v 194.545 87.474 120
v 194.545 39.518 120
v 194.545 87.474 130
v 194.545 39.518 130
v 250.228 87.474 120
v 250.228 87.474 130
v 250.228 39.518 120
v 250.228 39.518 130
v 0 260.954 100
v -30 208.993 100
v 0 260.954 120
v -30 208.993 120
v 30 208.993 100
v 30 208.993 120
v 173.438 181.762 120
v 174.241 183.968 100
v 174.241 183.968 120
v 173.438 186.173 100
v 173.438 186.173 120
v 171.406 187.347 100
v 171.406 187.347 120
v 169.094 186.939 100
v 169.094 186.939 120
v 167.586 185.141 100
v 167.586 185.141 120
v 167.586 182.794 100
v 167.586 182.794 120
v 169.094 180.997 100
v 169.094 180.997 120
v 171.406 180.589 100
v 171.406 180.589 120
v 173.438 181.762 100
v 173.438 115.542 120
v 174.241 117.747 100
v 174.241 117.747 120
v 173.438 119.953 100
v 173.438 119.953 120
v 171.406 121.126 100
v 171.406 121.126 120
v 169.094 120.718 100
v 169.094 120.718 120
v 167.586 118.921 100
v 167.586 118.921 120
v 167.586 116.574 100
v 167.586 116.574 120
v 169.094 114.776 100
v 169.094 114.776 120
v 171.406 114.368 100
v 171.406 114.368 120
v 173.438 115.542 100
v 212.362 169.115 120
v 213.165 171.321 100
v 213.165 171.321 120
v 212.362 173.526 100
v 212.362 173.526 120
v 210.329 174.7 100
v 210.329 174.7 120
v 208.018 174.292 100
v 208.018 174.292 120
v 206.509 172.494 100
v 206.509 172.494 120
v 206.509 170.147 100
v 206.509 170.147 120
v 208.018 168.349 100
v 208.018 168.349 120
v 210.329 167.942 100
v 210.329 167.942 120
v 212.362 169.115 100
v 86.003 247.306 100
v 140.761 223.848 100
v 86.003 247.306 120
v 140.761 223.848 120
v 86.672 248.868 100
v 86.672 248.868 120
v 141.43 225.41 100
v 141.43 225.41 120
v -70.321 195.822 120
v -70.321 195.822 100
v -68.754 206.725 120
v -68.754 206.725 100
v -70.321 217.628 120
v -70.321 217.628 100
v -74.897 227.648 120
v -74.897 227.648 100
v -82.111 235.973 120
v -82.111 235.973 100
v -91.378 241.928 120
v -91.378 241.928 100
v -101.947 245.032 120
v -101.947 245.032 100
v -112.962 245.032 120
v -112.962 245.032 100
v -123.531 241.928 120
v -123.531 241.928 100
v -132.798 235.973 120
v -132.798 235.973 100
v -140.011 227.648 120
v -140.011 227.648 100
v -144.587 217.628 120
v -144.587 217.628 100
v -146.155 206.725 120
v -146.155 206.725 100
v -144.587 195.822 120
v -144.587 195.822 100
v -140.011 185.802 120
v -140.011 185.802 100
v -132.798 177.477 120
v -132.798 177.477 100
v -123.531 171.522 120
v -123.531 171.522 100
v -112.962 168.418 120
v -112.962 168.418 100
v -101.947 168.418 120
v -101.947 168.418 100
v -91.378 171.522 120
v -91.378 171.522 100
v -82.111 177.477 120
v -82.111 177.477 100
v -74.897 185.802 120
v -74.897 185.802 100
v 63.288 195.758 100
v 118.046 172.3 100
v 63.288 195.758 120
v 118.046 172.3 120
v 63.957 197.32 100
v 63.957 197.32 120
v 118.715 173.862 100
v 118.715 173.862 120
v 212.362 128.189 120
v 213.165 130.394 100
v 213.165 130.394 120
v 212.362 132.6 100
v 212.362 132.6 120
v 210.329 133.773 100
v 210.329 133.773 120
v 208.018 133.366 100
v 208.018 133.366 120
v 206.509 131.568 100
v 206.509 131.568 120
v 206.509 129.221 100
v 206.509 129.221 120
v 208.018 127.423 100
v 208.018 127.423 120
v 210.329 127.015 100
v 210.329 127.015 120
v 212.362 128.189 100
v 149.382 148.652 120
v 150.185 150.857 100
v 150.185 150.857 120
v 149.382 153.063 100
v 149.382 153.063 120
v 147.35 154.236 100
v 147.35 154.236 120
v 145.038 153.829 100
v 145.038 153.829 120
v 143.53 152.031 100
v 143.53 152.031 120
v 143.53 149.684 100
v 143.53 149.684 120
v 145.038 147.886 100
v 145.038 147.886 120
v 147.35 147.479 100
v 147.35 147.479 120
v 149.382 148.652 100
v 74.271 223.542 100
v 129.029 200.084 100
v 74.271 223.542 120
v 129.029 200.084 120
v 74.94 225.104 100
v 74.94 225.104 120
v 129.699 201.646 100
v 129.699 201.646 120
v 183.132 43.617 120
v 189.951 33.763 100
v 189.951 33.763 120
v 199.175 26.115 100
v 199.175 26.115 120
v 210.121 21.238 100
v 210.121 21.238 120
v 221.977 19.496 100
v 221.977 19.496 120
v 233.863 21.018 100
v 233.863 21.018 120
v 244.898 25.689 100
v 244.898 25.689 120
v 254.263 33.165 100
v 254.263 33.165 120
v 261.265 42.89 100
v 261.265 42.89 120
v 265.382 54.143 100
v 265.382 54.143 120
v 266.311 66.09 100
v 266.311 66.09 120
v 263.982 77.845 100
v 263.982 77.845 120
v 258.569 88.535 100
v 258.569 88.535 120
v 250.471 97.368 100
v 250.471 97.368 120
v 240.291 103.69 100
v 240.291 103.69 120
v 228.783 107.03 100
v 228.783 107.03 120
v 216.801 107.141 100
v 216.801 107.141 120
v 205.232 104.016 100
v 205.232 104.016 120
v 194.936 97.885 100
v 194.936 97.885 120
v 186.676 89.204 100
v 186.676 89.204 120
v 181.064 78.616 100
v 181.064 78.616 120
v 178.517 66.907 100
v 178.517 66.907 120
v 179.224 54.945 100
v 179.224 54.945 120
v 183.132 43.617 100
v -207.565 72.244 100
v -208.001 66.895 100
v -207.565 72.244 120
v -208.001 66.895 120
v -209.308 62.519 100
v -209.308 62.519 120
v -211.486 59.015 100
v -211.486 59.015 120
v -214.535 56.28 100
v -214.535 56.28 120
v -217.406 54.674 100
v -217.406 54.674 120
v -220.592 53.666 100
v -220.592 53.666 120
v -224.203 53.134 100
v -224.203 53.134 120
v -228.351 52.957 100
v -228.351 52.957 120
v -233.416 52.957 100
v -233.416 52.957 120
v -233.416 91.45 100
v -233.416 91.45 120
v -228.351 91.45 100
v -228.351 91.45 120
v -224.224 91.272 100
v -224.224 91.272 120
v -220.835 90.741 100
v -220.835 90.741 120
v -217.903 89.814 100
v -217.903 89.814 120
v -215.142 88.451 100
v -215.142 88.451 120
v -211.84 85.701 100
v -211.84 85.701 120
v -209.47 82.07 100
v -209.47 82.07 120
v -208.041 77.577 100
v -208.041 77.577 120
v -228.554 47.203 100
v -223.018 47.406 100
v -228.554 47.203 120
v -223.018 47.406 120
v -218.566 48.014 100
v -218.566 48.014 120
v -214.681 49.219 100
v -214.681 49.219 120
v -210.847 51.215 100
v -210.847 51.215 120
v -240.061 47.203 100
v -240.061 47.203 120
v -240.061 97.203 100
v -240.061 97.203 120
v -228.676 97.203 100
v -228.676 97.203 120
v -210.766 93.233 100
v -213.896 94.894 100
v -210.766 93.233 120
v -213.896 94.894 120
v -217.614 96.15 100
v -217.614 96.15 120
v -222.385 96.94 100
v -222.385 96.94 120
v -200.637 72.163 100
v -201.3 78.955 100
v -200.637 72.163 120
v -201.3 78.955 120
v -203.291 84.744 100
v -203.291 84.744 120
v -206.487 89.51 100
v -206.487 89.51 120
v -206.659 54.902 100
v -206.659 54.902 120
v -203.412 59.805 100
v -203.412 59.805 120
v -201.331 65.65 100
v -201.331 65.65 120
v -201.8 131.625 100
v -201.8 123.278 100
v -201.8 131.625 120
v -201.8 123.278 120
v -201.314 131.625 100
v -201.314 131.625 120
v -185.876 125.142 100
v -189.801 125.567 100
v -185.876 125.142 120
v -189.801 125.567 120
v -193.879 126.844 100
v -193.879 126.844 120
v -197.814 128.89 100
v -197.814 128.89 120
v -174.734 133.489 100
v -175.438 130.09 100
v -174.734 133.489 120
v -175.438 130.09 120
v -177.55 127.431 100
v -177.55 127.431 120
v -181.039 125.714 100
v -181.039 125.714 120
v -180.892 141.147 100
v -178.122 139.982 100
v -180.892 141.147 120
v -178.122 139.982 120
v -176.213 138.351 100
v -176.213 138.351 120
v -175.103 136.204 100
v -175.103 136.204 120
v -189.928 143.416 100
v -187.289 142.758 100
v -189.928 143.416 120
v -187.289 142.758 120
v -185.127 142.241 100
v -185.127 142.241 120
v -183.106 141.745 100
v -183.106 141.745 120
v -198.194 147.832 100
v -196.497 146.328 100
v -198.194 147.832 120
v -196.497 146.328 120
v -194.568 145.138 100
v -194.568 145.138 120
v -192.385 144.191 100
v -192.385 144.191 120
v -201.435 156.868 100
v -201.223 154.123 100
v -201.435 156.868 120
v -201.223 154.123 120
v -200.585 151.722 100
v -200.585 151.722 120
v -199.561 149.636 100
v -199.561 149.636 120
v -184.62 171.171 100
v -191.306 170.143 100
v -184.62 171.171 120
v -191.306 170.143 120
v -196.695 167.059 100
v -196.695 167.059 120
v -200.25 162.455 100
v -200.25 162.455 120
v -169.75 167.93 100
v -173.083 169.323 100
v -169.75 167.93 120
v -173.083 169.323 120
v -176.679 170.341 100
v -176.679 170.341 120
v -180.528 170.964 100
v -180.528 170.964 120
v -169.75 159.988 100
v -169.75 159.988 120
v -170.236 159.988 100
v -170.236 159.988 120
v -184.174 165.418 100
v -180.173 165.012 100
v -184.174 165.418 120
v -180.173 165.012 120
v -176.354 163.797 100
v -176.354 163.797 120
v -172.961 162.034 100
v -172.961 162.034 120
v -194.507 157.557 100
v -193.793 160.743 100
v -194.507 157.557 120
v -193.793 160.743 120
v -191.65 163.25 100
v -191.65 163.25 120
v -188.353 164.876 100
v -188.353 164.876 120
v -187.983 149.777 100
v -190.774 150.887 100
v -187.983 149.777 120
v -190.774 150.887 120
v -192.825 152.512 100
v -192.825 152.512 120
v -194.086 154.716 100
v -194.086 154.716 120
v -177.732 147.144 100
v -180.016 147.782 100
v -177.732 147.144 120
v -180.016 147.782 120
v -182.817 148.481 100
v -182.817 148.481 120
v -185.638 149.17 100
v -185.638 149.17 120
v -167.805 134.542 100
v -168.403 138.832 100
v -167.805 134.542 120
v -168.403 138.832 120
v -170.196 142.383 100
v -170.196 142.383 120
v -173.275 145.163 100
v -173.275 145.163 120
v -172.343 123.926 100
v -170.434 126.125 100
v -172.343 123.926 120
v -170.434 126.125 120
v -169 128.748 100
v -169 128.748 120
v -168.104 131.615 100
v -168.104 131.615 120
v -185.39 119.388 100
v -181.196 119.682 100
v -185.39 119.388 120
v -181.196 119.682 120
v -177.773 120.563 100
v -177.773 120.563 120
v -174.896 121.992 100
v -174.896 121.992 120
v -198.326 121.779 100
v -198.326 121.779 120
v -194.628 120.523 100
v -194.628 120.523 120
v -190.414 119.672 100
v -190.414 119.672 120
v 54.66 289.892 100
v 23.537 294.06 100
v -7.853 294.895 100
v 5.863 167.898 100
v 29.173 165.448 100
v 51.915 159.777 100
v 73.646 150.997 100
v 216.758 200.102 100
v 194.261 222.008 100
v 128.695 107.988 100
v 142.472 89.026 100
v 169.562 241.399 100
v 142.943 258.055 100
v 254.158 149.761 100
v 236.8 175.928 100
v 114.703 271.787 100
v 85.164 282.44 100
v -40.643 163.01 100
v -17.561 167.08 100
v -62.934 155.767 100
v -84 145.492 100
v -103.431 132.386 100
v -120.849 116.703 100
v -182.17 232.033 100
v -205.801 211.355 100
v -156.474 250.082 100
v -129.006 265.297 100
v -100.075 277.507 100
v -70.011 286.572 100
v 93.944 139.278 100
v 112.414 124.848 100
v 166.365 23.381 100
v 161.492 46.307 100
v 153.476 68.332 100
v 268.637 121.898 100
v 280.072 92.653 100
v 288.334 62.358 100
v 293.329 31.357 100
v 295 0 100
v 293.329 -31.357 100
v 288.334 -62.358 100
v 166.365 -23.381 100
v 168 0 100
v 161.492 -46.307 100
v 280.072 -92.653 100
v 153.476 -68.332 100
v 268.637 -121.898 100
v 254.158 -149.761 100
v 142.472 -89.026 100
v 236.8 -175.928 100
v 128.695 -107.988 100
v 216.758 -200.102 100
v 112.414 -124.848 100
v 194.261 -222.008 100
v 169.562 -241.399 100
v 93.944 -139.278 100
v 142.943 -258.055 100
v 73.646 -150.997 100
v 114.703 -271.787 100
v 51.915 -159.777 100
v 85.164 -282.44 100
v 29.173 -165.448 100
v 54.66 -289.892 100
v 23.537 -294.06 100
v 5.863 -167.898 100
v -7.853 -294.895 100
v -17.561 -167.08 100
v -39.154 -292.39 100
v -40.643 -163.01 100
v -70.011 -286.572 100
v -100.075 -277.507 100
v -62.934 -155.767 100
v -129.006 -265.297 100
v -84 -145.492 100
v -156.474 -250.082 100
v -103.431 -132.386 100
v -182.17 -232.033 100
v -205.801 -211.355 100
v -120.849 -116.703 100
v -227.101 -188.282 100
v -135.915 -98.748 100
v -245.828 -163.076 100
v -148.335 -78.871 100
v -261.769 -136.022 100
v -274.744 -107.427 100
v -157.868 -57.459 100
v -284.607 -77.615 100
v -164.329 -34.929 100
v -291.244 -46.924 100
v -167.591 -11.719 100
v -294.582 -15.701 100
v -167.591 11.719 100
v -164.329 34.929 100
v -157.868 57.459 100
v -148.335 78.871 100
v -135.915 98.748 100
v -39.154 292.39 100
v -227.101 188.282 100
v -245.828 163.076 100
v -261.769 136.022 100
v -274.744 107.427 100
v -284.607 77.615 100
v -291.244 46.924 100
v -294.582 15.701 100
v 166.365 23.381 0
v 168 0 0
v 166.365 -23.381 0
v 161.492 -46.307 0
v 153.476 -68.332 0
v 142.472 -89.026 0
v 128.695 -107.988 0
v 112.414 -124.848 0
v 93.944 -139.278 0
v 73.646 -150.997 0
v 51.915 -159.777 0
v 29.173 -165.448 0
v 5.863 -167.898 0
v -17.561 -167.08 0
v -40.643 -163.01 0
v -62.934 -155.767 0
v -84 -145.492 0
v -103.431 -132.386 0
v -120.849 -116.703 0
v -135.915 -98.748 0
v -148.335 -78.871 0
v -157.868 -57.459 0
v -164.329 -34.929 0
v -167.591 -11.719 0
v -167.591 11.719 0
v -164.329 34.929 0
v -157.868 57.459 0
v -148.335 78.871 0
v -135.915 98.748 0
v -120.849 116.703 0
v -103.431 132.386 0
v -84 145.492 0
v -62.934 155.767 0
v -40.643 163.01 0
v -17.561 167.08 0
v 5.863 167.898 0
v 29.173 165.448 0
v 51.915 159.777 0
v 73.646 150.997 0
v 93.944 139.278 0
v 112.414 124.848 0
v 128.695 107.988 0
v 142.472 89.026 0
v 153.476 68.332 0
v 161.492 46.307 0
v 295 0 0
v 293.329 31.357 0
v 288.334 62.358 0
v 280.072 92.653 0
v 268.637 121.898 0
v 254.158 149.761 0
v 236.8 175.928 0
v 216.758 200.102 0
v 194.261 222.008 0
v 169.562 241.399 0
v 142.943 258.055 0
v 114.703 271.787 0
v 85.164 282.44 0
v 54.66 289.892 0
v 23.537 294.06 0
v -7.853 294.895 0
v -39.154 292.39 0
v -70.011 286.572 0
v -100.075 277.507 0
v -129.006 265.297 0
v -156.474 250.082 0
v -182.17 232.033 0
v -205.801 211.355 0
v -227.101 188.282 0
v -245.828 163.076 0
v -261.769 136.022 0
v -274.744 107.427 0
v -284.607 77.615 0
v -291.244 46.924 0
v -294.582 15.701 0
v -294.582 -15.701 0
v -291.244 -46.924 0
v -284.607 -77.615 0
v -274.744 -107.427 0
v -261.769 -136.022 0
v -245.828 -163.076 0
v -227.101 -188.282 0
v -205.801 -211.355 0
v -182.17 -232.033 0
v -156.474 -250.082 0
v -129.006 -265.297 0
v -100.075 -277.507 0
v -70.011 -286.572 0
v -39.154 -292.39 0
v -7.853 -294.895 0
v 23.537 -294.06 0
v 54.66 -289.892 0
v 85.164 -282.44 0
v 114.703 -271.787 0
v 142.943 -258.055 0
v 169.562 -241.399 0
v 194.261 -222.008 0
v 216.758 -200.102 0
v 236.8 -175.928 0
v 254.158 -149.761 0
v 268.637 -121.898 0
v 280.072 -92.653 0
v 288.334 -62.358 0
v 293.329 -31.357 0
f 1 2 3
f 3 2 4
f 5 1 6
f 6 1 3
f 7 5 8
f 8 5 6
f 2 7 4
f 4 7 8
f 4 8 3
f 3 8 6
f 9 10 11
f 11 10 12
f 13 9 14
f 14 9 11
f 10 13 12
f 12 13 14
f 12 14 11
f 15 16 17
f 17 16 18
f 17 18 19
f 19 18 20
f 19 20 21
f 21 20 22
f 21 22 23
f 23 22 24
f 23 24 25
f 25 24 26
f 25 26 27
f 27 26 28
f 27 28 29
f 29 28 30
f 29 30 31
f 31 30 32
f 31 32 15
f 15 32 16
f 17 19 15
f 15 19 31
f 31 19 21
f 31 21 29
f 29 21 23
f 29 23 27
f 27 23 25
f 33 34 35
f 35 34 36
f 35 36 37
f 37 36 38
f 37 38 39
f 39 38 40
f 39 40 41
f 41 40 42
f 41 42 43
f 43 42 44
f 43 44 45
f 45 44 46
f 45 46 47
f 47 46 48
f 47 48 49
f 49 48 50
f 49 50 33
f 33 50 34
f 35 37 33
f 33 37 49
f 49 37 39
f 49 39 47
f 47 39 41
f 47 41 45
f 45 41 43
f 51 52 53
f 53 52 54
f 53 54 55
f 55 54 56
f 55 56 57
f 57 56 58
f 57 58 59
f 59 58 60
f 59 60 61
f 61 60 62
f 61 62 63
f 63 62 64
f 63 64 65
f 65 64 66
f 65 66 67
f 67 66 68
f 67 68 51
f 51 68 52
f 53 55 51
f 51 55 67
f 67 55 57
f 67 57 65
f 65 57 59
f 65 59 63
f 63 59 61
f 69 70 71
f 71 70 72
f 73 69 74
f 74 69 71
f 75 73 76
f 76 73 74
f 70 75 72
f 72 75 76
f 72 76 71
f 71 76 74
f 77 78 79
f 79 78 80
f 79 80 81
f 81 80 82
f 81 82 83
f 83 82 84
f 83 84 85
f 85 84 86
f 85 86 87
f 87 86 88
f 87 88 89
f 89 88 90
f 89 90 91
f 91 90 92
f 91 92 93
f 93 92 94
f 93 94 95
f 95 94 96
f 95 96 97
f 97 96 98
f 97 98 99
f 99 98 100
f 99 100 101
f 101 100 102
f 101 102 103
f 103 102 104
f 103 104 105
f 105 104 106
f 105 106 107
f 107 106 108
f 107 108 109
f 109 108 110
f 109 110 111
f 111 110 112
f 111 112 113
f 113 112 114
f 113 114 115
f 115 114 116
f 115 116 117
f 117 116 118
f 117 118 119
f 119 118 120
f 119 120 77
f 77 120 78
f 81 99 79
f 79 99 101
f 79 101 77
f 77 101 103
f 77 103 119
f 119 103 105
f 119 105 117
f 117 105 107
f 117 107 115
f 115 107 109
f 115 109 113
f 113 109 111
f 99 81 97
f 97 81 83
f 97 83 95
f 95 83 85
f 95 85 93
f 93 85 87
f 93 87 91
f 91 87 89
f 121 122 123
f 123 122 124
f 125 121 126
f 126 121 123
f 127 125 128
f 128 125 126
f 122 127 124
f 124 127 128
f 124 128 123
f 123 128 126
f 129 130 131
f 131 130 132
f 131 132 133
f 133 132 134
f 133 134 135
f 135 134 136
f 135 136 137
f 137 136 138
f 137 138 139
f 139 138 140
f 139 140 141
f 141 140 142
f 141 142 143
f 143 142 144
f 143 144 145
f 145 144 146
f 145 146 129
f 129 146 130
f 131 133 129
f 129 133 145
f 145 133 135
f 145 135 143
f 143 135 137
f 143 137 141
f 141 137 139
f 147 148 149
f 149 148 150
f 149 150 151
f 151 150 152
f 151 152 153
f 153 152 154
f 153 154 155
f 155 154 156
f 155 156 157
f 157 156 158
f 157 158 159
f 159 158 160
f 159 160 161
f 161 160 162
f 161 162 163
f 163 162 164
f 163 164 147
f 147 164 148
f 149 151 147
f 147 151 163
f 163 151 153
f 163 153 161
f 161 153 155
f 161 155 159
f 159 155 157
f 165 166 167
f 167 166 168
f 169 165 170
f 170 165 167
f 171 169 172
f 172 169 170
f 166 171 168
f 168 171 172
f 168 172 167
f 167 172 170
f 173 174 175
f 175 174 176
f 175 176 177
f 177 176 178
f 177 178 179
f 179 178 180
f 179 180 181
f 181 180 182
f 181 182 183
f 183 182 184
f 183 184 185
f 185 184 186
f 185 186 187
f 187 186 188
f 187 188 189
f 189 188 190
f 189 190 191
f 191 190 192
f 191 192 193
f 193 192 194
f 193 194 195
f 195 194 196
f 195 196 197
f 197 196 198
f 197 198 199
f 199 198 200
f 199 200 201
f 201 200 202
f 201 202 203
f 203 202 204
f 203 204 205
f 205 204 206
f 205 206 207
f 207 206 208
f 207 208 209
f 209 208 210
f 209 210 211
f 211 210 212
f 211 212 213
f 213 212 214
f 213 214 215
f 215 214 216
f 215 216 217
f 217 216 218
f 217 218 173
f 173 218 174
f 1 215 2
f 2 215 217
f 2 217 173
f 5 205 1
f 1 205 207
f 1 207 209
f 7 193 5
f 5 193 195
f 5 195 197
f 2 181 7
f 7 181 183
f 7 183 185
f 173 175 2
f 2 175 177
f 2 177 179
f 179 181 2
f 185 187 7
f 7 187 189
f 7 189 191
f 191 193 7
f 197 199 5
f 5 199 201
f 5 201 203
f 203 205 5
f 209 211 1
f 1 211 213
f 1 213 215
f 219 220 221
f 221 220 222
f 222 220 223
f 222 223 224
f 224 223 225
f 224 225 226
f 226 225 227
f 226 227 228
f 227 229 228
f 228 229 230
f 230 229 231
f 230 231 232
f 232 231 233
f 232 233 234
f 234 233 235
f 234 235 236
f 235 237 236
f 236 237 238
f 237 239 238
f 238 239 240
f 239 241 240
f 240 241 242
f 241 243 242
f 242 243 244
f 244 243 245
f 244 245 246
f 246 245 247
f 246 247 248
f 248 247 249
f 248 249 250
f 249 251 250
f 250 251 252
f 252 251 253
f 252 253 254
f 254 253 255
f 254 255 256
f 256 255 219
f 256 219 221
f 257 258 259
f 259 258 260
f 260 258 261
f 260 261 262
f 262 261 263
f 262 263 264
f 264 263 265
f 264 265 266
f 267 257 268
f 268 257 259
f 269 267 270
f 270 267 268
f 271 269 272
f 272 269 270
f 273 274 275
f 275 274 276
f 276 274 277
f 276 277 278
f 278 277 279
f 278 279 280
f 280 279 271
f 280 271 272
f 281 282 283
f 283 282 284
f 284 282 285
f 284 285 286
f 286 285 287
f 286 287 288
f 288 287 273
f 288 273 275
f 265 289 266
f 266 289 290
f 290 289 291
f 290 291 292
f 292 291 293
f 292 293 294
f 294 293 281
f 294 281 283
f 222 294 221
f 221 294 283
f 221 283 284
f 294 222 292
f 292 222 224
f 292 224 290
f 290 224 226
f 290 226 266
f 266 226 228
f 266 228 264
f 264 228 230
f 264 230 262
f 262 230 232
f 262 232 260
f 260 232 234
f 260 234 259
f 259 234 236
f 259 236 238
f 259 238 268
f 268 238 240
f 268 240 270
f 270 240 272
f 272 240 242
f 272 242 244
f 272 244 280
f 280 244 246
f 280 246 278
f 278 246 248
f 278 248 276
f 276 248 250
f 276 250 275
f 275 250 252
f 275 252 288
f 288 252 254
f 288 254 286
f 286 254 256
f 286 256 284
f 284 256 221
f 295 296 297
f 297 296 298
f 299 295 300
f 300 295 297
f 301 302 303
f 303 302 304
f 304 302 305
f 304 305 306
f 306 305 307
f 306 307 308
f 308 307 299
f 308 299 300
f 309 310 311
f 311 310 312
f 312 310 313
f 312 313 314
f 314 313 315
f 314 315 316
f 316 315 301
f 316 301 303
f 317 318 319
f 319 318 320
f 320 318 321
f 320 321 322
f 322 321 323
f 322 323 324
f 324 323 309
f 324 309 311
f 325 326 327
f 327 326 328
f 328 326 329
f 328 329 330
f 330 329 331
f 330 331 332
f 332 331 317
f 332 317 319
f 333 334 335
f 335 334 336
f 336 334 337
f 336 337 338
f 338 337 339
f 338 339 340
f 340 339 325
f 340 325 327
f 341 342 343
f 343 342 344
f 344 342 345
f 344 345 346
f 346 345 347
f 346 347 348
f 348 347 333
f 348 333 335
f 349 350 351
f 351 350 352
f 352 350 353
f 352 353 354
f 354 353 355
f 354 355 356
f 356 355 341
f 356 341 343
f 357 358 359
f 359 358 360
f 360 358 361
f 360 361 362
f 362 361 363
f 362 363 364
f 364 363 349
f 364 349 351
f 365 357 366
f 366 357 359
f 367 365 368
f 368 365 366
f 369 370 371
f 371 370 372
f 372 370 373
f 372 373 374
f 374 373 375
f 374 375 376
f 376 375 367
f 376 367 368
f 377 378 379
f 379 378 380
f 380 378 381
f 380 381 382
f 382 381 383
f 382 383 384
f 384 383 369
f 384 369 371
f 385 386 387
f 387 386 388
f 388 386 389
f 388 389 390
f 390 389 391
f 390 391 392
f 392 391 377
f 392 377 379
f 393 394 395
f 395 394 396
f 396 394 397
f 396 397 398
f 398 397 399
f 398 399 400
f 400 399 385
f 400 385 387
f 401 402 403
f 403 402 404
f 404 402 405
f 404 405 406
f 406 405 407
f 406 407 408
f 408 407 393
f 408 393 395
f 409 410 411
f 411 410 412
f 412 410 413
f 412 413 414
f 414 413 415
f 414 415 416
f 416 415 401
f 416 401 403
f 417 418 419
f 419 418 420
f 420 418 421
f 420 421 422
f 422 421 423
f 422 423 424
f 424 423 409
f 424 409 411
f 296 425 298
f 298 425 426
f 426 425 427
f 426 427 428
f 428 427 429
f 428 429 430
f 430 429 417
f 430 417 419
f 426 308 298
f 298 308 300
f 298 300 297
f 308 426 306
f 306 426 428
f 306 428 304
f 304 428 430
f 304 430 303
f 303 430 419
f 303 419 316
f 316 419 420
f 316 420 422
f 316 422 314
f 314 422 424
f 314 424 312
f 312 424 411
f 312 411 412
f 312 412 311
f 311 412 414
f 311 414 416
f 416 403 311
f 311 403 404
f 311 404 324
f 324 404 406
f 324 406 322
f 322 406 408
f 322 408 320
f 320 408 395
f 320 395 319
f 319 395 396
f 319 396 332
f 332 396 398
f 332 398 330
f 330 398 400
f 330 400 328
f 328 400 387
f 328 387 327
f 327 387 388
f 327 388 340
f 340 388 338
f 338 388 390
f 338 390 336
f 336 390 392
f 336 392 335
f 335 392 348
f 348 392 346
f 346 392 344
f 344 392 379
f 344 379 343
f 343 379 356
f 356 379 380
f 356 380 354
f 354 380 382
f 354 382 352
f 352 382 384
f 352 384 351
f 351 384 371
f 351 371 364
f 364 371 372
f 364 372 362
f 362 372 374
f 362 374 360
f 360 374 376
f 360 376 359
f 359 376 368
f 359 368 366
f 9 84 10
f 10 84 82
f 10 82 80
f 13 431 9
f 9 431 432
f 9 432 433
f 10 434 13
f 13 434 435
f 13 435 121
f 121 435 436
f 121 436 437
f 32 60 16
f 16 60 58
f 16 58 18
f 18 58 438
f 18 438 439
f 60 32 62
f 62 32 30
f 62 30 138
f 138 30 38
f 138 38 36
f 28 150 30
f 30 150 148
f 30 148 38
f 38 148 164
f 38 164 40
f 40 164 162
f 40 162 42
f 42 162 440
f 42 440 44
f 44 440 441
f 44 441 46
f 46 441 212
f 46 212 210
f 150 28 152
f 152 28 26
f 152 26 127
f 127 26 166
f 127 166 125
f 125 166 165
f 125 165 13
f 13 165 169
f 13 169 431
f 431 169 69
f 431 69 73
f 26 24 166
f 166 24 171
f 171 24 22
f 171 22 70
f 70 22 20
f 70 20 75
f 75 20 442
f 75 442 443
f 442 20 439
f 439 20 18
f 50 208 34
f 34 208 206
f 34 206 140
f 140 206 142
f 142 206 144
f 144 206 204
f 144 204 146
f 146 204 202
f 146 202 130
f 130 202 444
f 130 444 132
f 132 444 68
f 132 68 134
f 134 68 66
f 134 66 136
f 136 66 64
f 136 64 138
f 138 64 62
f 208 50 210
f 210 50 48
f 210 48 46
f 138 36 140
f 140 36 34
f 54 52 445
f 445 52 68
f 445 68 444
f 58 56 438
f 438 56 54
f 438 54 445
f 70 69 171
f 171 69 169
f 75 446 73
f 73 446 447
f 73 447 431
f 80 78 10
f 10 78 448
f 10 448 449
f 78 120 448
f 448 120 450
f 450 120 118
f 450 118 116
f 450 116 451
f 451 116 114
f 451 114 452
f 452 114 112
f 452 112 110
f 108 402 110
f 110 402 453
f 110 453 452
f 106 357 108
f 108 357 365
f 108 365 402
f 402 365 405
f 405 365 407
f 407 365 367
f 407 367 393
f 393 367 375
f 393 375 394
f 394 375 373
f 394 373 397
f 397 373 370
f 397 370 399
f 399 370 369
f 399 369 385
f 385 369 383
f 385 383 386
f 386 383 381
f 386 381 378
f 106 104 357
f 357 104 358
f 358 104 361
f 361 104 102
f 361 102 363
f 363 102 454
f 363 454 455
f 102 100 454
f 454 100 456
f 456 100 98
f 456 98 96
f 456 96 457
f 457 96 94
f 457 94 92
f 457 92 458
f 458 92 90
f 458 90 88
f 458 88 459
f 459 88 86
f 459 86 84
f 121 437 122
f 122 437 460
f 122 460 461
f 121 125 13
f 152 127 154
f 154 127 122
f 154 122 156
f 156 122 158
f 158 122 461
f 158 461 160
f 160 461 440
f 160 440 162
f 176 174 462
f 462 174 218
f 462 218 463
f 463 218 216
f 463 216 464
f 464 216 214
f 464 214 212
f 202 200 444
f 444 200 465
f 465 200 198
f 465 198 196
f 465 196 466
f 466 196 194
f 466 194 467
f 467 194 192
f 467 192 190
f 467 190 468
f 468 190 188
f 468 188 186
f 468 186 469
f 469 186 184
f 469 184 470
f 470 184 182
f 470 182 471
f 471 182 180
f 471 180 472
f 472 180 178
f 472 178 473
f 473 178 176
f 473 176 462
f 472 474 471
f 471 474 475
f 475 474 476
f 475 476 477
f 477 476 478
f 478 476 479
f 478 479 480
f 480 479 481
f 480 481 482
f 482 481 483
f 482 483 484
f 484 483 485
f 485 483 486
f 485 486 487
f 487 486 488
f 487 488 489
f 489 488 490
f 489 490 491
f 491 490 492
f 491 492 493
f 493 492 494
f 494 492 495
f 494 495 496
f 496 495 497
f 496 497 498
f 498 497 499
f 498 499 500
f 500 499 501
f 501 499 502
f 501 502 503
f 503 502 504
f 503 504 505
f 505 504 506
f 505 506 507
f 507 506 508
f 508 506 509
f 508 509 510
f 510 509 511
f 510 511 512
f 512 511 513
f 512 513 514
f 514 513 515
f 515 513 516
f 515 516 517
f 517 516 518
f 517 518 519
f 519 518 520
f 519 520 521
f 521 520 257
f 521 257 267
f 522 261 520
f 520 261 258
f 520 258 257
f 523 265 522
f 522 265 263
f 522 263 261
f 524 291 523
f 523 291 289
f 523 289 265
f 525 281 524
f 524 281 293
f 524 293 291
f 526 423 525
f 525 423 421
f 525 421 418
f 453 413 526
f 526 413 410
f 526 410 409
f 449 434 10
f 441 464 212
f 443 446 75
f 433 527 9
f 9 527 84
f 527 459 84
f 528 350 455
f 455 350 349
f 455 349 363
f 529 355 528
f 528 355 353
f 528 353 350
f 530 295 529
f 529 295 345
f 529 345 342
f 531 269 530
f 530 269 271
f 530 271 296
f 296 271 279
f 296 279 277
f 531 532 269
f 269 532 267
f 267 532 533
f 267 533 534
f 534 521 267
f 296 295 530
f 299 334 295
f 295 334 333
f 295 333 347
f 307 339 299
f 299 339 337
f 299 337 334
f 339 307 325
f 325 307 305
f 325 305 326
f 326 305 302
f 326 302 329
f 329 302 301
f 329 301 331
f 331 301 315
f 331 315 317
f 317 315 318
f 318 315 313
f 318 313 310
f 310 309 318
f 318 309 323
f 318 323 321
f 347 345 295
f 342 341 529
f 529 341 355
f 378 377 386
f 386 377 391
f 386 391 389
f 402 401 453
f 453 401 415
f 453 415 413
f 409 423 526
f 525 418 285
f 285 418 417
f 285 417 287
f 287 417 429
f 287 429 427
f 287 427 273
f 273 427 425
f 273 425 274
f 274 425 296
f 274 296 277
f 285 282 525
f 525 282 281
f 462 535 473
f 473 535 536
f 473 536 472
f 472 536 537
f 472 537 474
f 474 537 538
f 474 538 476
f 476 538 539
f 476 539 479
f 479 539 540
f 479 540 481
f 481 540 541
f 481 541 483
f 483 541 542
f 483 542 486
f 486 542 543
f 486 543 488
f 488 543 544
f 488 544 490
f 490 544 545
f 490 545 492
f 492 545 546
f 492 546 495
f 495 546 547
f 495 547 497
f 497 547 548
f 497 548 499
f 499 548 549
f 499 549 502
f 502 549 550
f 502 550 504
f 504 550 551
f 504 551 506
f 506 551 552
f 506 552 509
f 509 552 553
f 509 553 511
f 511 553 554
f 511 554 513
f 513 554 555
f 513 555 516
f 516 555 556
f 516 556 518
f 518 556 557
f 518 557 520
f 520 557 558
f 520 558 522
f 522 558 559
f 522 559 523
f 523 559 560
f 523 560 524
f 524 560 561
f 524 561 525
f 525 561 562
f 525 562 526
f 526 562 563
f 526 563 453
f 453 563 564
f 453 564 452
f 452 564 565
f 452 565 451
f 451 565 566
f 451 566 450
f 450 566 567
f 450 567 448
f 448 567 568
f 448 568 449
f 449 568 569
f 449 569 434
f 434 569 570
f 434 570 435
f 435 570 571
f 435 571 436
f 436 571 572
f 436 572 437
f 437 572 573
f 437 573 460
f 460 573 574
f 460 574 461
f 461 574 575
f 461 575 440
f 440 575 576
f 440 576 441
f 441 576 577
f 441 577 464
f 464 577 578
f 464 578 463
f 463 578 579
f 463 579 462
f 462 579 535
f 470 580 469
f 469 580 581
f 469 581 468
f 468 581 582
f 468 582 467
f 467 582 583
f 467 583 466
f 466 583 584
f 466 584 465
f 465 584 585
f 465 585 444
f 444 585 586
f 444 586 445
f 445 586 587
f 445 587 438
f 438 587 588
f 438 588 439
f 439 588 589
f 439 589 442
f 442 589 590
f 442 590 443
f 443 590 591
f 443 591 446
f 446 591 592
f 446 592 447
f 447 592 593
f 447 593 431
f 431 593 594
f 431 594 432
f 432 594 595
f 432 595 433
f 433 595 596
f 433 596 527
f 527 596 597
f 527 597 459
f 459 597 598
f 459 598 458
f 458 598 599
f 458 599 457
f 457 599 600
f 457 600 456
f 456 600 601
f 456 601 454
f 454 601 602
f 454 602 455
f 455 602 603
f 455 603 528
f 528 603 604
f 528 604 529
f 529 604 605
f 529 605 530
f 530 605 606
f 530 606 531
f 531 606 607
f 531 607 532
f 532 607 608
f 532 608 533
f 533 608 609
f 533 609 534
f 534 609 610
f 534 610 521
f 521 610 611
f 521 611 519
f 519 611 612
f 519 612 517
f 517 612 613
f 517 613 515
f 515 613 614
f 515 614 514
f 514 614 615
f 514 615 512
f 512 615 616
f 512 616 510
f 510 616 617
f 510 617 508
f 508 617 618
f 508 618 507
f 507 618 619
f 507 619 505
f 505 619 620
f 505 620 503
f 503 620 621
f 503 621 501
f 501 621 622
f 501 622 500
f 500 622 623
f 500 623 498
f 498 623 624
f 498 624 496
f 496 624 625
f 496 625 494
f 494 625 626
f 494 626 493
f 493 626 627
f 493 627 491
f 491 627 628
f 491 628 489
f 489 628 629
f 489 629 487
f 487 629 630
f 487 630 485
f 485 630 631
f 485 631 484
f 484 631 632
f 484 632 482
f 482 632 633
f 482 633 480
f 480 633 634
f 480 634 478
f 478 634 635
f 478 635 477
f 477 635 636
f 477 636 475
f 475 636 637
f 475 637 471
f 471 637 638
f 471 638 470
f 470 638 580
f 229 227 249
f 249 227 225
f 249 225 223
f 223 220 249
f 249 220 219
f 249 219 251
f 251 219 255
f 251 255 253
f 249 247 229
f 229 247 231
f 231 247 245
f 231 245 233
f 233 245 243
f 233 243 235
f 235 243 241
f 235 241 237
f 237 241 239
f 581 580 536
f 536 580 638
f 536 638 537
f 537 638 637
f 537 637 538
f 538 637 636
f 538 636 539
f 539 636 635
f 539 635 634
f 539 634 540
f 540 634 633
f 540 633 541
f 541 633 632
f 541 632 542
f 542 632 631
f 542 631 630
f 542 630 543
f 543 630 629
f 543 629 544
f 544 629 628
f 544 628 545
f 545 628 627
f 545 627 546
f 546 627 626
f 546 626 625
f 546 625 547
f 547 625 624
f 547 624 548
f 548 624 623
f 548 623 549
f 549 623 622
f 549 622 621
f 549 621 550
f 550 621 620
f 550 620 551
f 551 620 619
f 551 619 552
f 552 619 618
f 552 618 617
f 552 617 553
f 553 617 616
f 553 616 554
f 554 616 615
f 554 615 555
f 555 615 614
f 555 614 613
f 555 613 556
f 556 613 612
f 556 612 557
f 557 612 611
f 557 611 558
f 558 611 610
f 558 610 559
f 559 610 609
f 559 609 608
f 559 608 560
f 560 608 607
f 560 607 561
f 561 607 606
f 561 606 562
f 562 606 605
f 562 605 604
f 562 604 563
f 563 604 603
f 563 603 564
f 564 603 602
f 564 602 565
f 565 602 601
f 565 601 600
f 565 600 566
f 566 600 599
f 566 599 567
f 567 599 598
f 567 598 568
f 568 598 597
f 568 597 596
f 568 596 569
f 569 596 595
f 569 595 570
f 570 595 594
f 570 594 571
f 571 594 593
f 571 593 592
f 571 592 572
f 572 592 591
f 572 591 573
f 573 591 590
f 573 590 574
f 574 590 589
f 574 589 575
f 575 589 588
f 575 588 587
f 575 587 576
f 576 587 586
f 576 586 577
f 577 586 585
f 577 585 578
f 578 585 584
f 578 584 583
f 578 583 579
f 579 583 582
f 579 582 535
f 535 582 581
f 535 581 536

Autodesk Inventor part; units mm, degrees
ref_plane "YZ Plane" through (0, 0, 0) normal (1, 0, 0) x (0, 1, 0)
ref_plane "XZ Plane" through (0, 0, 0) normal (0, 1, 0) x (-1, 0, 0)
ref_plane "XY Plane" through (0, 0, 0) normal (0, 0, 1) x (1, 0, 0)
sketch "Sketch1" plane through (0, 0, 0) normal (0, 0, 1) x (1, 0, 0)
  circle A0 centre (0, 0) radius 295
  circle A1 centre (0, 0) radius 168
  dimension "d0" = 590
  dimension "d1" = 336
extrude "Extrusion1" add sketch "Sketch1" along normal blind 100
sketch "Sketch2" plane through (0, 0, 100) normal (0, 0, 1) x (1, 0, 0)
  line L0 (-204.3933, 171.1712) -> (-160.5291, 171.1712) construction
  line L1 (-160.5291, 171.1712) -> (-160.5291, 111.0696) construction
  line L2 (-160.5291, 111.0696) -> (-204.3933, 111.0696) construction
  line L3 (-204.3933, 111.0696) -> (-204.3933, 171.1712) construction
  line L4 (-245.1262, 97.2034) -> (-201.262, 97.2034) construction
  line L5 (-201.262, 97.2034) -> (-201.262, 37.1018) construction
  line L6 (-201.262, 37.1018) -> (-245.1262, 37.1018) construction
  line L7 (-245.1262, 37.1018) -> (-245.1262, 97.2034) construction
  spline S0 degree 2 poles (-185.39, 119.3884) (-190.8195, 119.3884) (-198.437, 121.6574) (-201.8001, 123.2782) knots 0 0 0 1 2 2 2
  line L8 (-201.8001, 123.2782) -> (-201.8001, 131.625)
  line L9 (-201.8001, 131.625) -> (-201.3139, 131.625)
  spline S1 degree 2 poles (-201.3139, 131.625) (-198.0319, 128.5456) (-189.7255, 125.142) (-185.8763, 125.142) knots 0 0 0 1 2 2 2
  spline S2 degree 2 poles (-185.8763, 125.142) (-180.3657, 125.142) (-174.7336, 129.7206) (-174.7336, 133.4889) knots 0 0 0 1 2 2 2
  spline S3 degree 2 poles (-174.7336, 133.4889) (-174.7336, 136.4873) (-177.6915, 140.215) (-180.8925, 141.1469) knots 0 0 0 1 2 2 2
  spline S4 degree 2 poles (-180.8925, 141.1469) (-183.202, 141.7952) (-187.0513, 142.6866) (-189.9281, 143.4159) knots 0 0 0 1 2 2 2
  spline S5 degree 2 poles (-189.9281, 143.4159) (-192.5213, 144.1048) (-196.6137, 146.1712) (-198.1939, 147.8325) knots 0 0 0 1 2 2 2
  spline S6 degree 2 poles (-198.1939, 147.8325) (-199.7336, 149.4937) (-201.4354, 153.9508) (-201.4354, 156.8681) knots 0 0 0 1 2 2 2
  spline S7 degree 2 poles (-201.4354, 156.8681) (-201.4354, 162.9459) (-191.9541, 171.1712) (-184.6202, 171.1712) knots 0 0 0 1 2 2 2
  spline S8 degree 2 poles (-184.6202, 171.1712) (-180.4062, 171.1712) (-172.9508, 169.51) (-169.7498, 167.9297) knots 0 0 0 1 2 2 2
  line L10 (-169.7498, 167.9297) -> (-169.7498, 159.9881)
  line L11 (-169.7498, 159.9881) -> (-170.2361, 159.9881)
  spline S9 degree 2 poles (-170.2361, 159.9881) (-172.6267, 162.1761) (-180.0821, 165.4176) (-184.1745, 165.4176) knots 0 0 0 1 2 2 2
  spline S10 degree 2 poles (-184.1745, 165.4176) (-188.7936, 165.4176) (-194.5067, 161.0821) (-194.5067, 157.557) knots 0 0 0 1 2 2 2
  spline S11 degree 2 poles (-194.5067, 157.557) (-194.5067, 154.3965) (-191.1437, 150.6283) (-187.9832, 149.7774) knots 0 0 0 1 2 2 2
  spline S12 degree 2 poles (-187.9832, 149.7774) (-185.8763, 149.2101) (-179.758, 147.7514) (-177.732, 147.1437) knots 0 0 0 1 2 2 2
  spline S13 degree 2 poles (-177.732, 147.1437) (-172.5862, 145.5634) (-167.805, 139.202) (-167.805, 134.5424) knots 0 0 0 1 2 2 2
  spline S14 degree 2 poles (-167.805, 134.5424) (-167.805, 131.5845) (-170.1956, 125.9119) (-172.343, 123.9265) knots 0 0 0 1 2 2 2
  spline S15 degree 2 poles (-172.343, 123.9265) (-174.7336, 121.7385) (-180.8114, 119.3884) (-185.39, 119.3884) knots 0 0 0 1 2 2 2
  spline S16 degree 2 poles (-200.6367, 72.1629) (-200.6367, 65.3152) (-206.1877, 54.2942) (-210.8474, 51.2147) knots 0 0 0 1 2 2 2
  spline S17 degree 2 poles (-210.8474, 51.2147) (-214.6561, 48.8241) (-222.4762, 47.2034) (-228.554, 47.2034) knots 0 0 0 1 2 2 2
  line L12 (-228.554, 47.2034) -> (-240.0613, 47.2034)
  line L13 (-240.0613, 47.2034) -> (-240.0613, 97.2034)
  line L14 (-240.0613, 97.2034) -> (-228.6756, 97.2034)
  spline S18 degree 2 poles (-228.6756, 97.2034) (-221.6253, 97.2034) (-213.6027, 95.0964) (-210.7663, 93.2326) knots 0 0 0 1 2 2 2
  spline S19 degree 2 poles (-210.7663, 93.2326) (-205.9446, 90.0316) (-200.6367, 79.4562) (-200.6367, 72.1629) knots 0 0 0 1 2 2 2
  spline S20 degree 2 poles (-207.5654, 72.2439) (-207.5654, 77.9976) (-211.3741, 86.1418) (-215.1424, 88.4514) knots 0 0 0 1 2 2 2
  spline S21 degree 2 poles (-215.1424, 88.4514) (-217.8166, 90.0316) (-223.8539, 91.4498) (-228.3514, 91.4498) knots 0 0 0 1 2 2 2
  line L15 (-228.3514, 91.4498) -> (-233.4163, 91.4498)
  line L16 (-233.4163, 91.4498) -> (-233.4163, 52.957)
  line L17 (-233.4163, 52.957) -> (-228.3514, 52.957)
  spline S22 degree 2 poles (-228.3514, 52.957) (-223.9349, 52.957) (-217.2493, 54.3752) (-214.5346, 56.2796) knots 0 0 0 1 2 2 2
  spline S23 degree 2 poles (-214.5346, 56.2796) (-211.05, 58.6297) (-207.5654, 66.4092) (-207.5654, 72.2439) knots 0 0 0 1 2 2 2
  point P0 (0, 0)
extrude "Extrusion2" add sketch "Sketch2" along normal blind 20
sketch "Sketch3" plane through (0, 0, 100) normal (0, 0, 1) x (1, 0, 0)
  circle A0 centre (-107.4544, 206.725) radius 38.7006
  line L0 (0, 260.9541) -> (30, 208.9926)
  line L1 (0, 260.9541) -> (60, 260.9541) construction
  line L2 (30, 208.9926) -> (-30, 208.9926)
  line L3 (-30, 208.9926) -> (0, 260.9541)
  line L4 (74.2712, 223.542) -> (129.0294, 200.0839)
  line L5 (129.0294, 200.0839) -> (129.6987, 201.6462)
  line L6 (129.6987, 201.6462) -> (74.9405, 225.1043)
  line L7 (74.9405, 225.1043) -> (74.2712, 223.542)
  line L8 (74.2712, 223.542) -> (129.6987, 201.6462) construction
  line L9 (129.0294, 200.0839) -> (74.9405, 225.1043) construction
  line L10 (63.2876, 195.758) -> (118.0458, 172.2999)
  line L11 (118.0458, 172.2999) -> (118.7151, 173.8622)
  line L12 (118.7151, 173.8622) -> (63.9569, 197.3203)
  line L13 (63.9569, 197.3203) -> (63.2876, 195.758)
  line L14 (63.2876, 195.758) -> (118.7151, 173.8622) construction
  line L15 (118.0458, 172.2999) -> (63.9569, 197.3203) construction
  line L16 (86.0027, 247.306) -> (140.7609, 223.848)
  line L17 (140.7609, 223.848) -> (141.4302, 225.4103)
  line L18 (141.4302, 225.4103) -> (86.672, 248.8684)
  line L19 (86.672, 248.8684) -> (86.0027, 247.306)
  circle A1 centre (181.5681, 150.8575) radius 34.8144
  circle A2 centre (146.7537, 150.8575) radius 3.4311
  circle A3 centre (170.8099, 117.747) radius 3.4311
  circle A4 centre (209.7335, 130.3941) radius 3.4311
  circle A5 centre (209.7335, 171.3209) radius 3.4311
  circle A6 centre (170.8099, 183.9679) radius 3.4311
  circle A7 centre (222.3863, 63.4959) radius 44.0014
  line L20 (189.9505, 93.2287) -> (254.8222, 93.2287)
  line L21 (254.8222, 93.2287) -> (254.8222, 33.763)
  line L22 (254.8222, 33.763) -> (189.9505, 33.763)
  line L23 (189.9505, 33.763) -> (189.9505, 93.2287)
  line L24 (189.9505, 93.2287) -> (254.8222, 33.763) construction
  line L25 (254.8222, 93.2287) -> (189.9505, 33.763) construction
  point P0 (0, 0)
  point P1 (101.985, 212.5941)
  point P2 (91.0013, 184.8101)
  point P3 (189.9505, 93.2287)
  point P4 (189.9505, 93.2287)
  point P5 (254.8222, 93.2287)
  point P6 (254.8222, 93.2287)
  point P7 (189.9505, 33.763)
  point P8 (189.9505, 33.763)
  dimension "d6" = 60
  dimension "d7" = 60
  dimension "d8" = 60
  dimension "d9" = 60
  dimension "d12" = 360
extrude "Extrusion3" add sketch "Sketch3" along normal blind 20 contours A0 | L0 L2 L3 | L7 L6 L5 L4 | L13 L12 L11 L10 | L19 L18 L17 L16 | A5 A1 | A1 A5 | A4 A1 | A1 A4 | A6 A1 | A1 A6 | A3 A1 | A1 A3 | A2 A1 | A1 A2 | A7 L21 | L20 A7 | L21 L22 L23 L20 | A7 L22 | L23 A7
sketch "Sketch4" plane through (222.3863, 63.4959, 120) normal (0, 0, 1) x (1, 0, 0)
  line L0 (-27.8414, 23.9777) -> (27.8414, 23.9777)
  line L1 (27.8414, 23.9777) -> (27.8414, -23.9777)
  line L2 (27.8414, -23.9777) -> (-27.8414, -23.9777)
  line L3 (-27.8414, -23.9777) -> (-27.8414, 23.9777)
  line L4 (-27.8414, 23.9777) -> (27.8414, -23.9777) construction
  line L5 (27.8414, 23.9777) -> (-27.8414, -23.9777) construction
  point P0 (-222.3863, -63.4959)
  point P1 (0, 0)
extrude "Extrusion4" add sketch "Sketch4" along normal blind 10
properties part number "lab5CADfiguras"
